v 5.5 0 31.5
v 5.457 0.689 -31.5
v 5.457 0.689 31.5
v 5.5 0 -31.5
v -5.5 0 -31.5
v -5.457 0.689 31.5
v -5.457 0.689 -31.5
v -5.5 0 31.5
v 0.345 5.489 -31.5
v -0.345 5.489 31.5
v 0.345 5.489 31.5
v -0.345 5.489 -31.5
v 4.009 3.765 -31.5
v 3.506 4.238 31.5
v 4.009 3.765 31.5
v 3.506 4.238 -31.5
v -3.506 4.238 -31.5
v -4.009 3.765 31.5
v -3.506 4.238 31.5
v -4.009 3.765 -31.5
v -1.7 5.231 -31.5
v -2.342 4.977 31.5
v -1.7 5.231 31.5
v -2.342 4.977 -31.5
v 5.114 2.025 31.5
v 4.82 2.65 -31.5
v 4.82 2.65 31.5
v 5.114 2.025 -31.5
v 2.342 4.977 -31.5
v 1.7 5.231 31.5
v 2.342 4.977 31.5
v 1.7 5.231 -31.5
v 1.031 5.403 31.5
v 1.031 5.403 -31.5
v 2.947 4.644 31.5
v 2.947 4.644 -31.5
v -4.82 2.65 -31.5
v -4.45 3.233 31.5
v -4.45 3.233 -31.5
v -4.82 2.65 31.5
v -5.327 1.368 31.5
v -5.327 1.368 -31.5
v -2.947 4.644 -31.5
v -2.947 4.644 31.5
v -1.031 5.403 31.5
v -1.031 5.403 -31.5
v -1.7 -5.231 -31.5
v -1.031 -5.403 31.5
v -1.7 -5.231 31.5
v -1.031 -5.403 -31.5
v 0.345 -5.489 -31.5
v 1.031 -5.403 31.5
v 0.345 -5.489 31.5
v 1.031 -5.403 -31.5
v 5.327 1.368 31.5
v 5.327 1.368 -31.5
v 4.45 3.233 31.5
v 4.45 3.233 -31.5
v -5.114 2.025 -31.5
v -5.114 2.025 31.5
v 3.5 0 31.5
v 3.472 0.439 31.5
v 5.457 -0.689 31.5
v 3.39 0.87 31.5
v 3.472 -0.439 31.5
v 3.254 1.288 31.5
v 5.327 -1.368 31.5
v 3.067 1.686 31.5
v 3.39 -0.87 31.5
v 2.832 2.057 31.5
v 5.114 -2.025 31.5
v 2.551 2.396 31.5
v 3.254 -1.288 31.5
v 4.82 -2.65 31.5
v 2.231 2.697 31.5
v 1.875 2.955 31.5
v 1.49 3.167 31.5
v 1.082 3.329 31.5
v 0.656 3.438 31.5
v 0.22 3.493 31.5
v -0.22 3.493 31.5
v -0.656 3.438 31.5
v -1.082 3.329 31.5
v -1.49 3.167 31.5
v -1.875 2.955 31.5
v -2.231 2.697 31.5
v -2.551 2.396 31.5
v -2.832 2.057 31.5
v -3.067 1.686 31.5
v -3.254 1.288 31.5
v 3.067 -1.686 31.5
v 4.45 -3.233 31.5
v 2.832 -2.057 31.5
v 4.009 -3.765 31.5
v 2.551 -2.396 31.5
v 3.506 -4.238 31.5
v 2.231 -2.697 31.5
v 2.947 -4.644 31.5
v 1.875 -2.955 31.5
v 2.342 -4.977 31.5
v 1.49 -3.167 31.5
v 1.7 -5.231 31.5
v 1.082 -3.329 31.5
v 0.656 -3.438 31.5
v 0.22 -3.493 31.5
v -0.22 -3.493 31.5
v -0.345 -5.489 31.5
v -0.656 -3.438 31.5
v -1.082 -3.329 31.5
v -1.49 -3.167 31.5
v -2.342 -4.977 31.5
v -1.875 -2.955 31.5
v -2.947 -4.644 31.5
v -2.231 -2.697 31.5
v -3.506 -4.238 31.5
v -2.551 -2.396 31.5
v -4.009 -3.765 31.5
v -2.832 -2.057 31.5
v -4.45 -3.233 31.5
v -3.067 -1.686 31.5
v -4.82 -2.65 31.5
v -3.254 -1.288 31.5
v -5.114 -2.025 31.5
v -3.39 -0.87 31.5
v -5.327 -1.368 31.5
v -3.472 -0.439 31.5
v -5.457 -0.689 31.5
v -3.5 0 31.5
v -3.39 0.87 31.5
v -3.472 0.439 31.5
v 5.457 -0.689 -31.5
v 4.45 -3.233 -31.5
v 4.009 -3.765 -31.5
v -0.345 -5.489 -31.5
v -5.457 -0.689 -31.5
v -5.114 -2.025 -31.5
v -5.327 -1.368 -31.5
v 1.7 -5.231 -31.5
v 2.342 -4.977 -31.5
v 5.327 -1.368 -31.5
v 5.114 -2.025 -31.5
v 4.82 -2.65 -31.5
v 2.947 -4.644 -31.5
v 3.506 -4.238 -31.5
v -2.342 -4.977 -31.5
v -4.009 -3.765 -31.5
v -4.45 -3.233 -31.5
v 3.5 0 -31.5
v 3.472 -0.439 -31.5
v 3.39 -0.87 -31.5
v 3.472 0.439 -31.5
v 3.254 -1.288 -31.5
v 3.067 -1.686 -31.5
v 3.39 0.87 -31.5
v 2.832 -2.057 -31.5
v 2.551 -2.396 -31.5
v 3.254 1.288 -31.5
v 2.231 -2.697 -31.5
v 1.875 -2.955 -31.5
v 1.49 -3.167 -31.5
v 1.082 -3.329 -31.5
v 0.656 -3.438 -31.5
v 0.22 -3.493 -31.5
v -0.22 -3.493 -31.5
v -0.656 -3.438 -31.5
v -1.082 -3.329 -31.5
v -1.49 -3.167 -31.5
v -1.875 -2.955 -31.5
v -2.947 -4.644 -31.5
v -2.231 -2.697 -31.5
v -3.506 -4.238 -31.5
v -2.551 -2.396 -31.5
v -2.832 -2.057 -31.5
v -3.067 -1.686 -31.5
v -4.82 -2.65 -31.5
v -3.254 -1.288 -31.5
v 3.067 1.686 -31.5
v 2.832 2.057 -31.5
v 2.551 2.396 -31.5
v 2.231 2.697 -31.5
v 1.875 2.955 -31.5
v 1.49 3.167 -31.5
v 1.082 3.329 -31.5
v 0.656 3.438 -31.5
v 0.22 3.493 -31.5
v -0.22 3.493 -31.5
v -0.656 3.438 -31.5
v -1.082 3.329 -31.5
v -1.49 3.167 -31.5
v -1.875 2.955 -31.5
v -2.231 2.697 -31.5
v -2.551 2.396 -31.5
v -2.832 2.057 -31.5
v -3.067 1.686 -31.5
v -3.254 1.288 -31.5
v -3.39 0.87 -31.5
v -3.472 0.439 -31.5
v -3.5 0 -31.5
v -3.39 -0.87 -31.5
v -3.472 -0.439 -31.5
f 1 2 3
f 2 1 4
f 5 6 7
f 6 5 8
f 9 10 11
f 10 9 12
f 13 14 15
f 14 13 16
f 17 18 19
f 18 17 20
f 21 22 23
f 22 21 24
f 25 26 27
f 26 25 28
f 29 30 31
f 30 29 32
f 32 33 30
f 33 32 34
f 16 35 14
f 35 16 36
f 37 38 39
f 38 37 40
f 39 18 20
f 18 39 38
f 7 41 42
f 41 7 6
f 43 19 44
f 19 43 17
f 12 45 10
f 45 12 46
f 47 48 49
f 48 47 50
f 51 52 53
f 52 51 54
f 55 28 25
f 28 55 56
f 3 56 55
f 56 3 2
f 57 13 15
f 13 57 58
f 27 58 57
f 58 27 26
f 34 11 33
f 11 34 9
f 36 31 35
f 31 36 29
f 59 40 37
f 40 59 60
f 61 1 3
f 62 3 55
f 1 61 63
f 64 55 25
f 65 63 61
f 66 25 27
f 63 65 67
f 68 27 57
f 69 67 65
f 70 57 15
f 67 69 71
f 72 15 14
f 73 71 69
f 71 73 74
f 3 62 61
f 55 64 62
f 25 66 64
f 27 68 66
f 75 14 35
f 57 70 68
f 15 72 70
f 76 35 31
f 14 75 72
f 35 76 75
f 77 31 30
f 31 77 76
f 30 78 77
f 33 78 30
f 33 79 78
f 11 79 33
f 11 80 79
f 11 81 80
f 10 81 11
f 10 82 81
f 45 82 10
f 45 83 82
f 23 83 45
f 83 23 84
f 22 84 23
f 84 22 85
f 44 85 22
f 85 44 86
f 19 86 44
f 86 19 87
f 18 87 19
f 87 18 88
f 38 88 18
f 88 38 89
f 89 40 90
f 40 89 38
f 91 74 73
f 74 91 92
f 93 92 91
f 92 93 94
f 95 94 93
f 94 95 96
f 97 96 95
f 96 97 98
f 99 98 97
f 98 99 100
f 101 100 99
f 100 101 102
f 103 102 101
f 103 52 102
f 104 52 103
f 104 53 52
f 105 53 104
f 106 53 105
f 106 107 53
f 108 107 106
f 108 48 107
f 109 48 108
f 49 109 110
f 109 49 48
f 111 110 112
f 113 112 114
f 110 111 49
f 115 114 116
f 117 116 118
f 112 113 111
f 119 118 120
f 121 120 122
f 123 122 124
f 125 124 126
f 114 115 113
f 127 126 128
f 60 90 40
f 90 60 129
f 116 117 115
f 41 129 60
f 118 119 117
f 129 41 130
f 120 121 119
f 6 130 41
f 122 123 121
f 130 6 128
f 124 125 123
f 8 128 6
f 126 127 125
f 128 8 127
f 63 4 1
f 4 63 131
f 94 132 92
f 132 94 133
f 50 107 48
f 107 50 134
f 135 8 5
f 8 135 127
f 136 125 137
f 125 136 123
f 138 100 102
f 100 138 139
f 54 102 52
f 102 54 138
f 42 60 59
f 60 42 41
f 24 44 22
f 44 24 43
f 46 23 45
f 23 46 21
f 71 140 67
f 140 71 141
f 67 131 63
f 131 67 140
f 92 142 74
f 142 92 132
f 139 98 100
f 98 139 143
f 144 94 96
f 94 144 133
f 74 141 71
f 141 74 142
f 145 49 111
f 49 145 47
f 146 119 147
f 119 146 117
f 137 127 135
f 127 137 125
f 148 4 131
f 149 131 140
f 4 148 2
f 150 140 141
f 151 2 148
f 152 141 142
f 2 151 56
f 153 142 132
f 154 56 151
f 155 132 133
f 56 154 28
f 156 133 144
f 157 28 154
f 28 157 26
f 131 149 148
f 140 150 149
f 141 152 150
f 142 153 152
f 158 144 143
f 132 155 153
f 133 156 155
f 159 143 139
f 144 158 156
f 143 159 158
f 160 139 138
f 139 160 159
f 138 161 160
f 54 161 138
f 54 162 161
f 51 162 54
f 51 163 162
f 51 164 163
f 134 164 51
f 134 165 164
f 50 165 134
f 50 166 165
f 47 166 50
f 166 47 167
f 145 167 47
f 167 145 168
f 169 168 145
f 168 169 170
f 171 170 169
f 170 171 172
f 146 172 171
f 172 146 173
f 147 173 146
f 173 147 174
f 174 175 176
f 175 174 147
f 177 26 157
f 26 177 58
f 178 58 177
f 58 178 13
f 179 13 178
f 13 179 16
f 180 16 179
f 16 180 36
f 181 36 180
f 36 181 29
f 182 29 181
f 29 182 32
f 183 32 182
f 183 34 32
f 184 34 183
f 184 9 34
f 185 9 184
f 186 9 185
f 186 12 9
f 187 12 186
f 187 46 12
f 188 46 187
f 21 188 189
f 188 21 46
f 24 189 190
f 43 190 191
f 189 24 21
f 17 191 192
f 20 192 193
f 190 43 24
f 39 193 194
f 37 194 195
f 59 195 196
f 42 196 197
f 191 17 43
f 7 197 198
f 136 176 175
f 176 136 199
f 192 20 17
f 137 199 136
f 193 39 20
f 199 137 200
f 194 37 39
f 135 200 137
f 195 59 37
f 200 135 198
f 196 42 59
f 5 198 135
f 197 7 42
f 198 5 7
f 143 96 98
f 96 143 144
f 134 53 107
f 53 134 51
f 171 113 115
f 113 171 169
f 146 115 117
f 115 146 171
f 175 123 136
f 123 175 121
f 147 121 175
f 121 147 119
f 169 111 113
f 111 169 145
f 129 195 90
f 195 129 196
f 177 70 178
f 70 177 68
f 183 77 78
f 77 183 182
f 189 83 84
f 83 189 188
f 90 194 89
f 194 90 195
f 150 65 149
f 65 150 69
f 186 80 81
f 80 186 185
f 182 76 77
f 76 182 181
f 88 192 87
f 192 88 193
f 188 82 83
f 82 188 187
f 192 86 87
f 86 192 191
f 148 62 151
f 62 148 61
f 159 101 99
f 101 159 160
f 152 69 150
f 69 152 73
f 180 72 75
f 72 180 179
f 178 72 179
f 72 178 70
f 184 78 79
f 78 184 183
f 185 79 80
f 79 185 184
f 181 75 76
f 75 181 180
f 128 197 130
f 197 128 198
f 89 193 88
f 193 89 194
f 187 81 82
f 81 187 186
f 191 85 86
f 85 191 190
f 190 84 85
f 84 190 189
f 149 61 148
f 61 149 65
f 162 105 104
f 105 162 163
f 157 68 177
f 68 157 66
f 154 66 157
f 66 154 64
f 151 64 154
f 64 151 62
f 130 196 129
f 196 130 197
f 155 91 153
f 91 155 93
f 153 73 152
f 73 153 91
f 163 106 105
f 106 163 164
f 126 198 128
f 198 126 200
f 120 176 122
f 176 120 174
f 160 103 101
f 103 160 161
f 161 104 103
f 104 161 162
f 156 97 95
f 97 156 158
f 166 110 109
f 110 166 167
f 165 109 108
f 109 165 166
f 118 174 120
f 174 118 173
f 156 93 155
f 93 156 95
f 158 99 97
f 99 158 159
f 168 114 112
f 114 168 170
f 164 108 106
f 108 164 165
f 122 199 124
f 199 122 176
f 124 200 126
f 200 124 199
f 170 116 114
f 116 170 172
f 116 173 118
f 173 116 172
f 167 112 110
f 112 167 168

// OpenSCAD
$fn = 50;


difference() {
	union() {
		translate(v = [0, 0, -31.5000000000]) {
			cylinder(h = 63, r = 5.5000000000);
		}
	}
	union() {
		translate(v = [0, 0, -100.0000000000]) {
			cylinder(h = 200, r = 3.5000000000);
		}
	}
}
